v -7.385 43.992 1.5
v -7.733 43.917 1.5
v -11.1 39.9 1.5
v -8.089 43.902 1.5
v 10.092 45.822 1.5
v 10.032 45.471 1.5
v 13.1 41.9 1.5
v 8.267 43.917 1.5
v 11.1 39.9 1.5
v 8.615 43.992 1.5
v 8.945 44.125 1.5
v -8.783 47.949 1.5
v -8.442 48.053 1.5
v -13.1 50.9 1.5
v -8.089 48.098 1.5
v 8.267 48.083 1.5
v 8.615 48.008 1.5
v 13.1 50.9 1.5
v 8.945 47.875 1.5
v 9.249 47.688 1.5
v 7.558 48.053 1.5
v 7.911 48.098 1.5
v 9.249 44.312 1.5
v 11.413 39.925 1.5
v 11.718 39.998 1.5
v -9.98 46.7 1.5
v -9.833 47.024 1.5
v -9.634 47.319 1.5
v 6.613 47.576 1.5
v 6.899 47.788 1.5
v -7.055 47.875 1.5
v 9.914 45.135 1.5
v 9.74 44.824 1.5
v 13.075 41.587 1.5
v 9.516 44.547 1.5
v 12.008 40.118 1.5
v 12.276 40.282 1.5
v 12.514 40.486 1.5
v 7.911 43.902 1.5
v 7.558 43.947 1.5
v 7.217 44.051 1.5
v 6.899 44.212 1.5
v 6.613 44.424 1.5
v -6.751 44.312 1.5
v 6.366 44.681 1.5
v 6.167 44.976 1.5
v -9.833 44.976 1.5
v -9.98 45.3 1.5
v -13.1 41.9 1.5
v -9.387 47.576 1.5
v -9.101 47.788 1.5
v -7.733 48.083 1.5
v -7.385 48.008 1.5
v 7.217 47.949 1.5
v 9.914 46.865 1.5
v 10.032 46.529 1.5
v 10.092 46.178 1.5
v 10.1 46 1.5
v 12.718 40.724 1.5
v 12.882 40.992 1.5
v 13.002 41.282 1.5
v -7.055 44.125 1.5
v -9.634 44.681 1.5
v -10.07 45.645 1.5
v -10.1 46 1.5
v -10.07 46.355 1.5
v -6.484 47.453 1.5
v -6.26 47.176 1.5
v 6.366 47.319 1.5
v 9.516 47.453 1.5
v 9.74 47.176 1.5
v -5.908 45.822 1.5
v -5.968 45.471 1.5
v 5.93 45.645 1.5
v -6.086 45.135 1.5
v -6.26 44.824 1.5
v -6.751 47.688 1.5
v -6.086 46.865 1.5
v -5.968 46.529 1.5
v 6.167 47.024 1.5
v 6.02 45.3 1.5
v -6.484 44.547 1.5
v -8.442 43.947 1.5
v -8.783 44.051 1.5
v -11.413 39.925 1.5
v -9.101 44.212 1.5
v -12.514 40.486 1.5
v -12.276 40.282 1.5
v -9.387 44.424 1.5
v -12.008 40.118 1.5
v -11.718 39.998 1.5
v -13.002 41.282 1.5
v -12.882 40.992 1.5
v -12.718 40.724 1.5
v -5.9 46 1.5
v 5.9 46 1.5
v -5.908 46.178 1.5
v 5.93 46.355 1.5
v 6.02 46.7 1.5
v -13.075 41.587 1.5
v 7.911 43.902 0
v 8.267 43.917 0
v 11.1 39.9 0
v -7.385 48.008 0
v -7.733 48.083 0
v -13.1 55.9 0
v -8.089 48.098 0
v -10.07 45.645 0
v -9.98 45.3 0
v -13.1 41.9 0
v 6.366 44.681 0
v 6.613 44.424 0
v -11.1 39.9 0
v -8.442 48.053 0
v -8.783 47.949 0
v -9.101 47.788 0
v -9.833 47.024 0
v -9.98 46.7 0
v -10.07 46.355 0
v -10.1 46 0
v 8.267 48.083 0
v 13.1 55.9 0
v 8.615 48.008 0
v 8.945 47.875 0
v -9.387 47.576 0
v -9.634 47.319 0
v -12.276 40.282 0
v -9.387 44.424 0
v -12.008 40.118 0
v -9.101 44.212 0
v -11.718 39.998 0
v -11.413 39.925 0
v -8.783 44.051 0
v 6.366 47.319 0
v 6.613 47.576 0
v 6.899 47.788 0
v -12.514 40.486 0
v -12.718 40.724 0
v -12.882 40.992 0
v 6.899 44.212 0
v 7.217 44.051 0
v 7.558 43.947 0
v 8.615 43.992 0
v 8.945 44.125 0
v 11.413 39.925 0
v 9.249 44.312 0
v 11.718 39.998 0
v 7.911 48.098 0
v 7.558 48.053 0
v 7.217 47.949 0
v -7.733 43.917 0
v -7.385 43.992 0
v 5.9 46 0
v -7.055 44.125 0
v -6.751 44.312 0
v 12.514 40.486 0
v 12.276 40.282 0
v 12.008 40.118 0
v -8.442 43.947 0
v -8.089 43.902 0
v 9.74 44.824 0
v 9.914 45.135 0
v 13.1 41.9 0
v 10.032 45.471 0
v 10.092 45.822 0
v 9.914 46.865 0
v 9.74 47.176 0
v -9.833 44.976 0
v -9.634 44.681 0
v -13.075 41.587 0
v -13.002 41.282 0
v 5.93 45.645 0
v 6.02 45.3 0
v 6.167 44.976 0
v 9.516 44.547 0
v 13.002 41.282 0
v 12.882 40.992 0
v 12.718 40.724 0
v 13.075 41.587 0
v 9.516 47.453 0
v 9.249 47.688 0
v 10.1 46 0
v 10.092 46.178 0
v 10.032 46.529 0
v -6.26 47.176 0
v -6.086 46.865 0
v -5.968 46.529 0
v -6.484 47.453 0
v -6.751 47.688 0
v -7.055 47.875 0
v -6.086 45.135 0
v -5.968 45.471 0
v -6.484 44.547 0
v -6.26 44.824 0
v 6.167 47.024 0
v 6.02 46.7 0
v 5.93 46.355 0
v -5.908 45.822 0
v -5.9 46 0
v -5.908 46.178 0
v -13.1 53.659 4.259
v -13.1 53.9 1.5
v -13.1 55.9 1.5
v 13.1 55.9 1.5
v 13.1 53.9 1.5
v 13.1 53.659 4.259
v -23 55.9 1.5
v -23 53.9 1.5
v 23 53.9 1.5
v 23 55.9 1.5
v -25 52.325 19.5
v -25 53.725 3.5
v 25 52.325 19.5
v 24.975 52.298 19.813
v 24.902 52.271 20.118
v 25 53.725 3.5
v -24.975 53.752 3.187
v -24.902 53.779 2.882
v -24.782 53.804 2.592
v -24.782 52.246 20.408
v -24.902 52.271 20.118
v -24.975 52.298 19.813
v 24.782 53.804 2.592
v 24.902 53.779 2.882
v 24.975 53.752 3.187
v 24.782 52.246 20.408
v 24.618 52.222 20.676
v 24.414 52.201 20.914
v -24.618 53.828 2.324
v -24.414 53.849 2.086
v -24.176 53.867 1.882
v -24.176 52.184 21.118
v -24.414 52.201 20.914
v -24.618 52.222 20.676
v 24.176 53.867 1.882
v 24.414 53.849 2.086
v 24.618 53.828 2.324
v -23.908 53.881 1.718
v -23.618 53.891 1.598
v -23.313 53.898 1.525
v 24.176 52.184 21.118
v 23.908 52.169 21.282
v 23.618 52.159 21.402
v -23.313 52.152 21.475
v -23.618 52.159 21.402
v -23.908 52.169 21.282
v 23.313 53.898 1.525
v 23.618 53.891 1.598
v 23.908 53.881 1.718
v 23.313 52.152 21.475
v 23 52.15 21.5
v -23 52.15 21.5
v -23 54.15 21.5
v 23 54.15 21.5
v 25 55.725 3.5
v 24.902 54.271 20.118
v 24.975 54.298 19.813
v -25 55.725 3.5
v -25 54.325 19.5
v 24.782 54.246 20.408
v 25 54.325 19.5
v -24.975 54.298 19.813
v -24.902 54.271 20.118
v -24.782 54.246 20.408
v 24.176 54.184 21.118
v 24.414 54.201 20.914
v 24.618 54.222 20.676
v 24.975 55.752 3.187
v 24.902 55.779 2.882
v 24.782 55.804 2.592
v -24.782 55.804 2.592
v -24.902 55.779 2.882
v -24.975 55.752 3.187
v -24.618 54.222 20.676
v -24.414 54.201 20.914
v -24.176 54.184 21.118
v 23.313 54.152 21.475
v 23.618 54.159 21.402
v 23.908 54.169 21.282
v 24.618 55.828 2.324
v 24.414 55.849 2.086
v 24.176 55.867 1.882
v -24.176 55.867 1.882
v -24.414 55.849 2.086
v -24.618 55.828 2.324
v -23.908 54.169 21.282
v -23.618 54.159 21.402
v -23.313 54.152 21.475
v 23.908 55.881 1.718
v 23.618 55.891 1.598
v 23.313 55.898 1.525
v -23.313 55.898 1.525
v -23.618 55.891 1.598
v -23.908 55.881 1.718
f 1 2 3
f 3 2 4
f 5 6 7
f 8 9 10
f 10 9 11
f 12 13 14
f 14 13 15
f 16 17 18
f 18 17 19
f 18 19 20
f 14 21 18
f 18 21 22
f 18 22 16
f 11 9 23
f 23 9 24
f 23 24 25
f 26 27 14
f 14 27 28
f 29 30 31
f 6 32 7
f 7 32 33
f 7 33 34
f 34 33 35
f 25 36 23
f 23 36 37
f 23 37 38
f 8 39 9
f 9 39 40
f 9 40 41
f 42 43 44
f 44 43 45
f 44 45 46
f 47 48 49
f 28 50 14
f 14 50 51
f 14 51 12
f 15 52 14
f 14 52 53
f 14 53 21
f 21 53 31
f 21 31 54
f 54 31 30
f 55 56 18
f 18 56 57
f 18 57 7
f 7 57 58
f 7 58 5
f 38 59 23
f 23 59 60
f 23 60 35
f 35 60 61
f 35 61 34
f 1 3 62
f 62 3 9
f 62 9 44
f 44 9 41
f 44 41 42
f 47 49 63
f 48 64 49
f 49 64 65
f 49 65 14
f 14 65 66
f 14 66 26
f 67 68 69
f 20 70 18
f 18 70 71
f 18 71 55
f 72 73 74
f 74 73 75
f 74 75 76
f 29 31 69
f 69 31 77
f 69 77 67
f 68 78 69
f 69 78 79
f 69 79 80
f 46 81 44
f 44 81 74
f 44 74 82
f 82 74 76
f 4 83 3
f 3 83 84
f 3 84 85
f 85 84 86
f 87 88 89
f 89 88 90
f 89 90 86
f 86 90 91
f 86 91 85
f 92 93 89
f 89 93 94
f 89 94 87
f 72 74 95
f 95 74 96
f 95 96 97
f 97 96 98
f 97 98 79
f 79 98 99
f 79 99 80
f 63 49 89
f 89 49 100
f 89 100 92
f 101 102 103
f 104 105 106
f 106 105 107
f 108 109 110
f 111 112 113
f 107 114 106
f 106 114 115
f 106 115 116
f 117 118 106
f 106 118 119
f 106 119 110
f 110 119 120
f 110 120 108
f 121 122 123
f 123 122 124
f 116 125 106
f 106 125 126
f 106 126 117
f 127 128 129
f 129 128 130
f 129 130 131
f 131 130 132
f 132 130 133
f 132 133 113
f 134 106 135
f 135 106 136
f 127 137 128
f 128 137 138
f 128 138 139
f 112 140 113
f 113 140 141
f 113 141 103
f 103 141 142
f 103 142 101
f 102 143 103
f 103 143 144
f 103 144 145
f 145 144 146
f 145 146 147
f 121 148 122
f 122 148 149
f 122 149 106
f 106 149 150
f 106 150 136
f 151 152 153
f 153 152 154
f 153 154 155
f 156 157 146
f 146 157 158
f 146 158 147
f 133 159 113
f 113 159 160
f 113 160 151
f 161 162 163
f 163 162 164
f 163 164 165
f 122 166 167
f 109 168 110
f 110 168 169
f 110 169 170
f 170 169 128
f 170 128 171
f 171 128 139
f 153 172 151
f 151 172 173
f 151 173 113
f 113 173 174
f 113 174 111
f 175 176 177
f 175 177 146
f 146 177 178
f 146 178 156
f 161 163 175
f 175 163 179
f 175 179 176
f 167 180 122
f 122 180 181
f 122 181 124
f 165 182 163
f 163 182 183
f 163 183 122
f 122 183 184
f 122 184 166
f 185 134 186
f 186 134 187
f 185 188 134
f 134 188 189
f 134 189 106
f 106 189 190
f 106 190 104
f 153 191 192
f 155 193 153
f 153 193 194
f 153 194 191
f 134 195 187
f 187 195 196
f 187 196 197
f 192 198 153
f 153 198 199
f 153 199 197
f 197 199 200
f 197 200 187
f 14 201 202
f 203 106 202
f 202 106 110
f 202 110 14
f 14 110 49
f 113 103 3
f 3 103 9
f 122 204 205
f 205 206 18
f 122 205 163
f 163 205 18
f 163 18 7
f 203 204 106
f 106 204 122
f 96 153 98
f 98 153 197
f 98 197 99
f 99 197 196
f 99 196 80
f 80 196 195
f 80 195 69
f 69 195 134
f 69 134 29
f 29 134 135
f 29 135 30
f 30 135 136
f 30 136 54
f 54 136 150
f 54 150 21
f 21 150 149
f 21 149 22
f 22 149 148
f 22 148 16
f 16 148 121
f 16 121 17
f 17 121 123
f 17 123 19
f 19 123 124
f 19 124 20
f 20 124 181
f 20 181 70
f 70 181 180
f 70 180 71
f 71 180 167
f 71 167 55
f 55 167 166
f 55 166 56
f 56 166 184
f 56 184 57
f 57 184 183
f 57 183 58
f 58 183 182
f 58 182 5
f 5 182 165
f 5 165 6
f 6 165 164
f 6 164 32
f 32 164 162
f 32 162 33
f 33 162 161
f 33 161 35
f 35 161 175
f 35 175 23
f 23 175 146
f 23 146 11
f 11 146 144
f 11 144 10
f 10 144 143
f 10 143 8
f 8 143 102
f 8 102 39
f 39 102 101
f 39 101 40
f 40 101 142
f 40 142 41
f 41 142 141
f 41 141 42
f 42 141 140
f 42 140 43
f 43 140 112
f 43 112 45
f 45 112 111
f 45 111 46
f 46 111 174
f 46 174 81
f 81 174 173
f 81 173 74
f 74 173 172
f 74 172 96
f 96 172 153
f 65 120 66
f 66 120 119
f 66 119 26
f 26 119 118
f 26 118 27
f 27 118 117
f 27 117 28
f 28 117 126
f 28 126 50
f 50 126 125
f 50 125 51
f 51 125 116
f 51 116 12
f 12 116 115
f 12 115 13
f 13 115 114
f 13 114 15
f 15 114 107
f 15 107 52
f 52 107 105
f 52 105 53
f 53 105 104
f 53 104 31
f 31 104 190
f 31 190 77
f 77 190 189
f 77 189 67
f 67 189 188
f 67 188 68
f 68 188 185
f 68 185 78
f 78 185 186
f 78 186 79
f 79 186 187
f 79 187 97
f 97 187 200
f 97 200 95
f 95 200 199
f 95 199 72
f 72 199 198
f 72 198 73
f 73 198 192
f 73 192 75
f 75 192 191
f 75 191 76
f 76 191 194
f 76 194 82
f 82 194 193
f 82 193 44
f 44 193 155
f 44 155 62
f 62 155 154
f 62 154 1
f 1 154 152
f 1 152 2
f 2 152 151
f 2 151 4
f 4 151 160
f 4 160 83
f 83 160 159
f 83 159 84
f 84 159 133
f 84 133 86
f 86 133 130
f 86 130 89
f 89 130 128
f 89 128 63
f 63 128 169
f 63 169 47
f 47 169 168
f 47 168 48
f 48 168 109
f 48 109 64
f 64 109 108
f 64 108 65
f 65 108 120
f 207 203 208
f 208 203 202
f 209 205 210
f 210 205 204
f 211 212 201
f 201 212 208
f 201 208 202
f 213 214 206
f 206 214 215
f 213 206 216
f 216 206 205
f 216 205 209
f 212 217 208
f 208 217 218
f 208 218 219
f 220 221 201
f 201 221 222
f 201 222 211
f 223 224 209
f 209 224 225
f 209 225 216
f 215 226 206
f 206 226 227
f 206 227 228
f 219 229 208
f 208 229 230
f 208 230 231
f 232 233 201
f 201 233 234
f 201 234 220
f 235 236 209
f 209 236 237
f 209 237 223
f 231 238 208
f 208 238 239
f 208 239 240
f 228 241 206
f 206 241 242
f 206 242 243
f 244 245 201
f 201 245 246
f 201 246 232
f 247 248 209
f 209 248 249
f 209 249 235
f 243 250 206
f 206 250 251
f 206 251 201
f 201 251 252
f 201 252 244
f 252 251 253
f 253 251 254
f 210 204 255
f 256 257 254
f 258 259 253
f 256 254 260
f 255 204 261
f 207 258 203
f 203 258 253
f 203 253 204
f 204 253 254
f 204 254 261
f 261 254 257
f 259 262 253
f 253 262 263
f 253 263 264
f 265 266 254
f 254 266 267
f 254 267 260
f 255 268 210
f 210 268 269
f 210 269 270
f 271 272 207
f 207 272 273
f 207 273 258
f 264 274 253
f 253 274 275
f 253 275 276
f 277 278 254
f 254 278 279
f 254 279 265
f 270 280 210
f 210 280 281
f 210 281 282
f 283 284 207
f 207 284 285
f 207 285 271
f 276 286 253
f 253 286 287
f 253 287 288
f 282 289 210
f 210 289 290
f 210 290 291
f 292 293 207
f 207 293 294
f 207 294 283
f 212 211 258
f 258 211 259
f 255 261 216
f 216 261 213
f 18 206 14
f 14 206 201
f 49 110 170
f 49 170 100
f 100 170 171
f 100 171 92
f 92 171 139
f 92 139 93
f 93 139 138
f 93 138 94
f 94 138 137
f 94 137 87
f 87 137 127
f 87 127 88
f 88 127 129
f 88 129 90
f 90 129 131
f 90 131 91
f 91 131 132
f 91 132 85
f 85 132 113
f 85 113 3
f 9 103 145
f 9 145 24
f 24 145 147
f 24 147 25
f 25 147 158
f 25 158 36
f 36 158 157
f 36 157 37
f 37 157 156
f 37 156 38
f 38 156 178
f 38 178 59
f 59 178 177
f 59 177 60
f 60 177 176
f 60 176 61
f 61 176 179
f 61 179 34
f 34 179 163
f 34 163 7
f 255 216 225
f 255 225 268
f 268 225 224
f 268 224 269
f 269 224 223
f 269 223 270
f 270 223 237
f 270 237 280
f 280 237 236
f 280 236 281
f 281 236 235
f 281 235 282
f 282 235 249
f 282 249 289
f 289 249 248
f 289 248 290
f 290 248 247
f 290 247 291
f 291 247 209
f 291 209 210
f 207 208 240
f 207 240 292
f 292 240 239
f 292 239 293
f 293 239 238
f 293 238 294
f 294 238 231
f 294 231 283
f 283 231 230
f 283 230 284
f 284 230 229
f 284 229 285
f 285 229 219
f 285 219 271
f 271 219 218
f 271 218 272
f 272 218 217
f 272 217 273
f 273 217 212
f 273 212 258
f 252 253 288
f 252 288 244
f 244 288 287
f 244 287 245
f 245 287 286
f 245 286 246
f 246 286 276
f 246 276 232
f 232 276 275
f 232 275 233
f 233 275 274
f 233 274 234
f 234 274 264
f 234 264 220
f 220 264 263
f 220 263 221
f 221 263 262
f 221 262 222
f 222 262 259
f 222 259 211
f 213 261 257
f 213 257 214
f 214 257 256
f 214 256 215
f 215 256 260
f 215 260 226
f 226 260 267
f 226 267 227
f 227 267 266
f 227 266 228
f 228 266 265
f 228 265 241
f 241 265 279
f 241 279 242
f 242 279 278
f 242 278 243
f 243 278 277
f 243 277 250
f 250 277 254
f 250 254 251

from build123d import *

# Parameters (mm, degrees)
SKETCH3_W           = 26.2
SKETCH3_H           = 16
SKETCH3_R           = 2.1
BOSS_EXTRUDE1_DEPTH = 1.5
BOSS_EXTRUDE2_START = -13.1
BOSS_EXTRUDE2_DEPTH = 25
CHAMFER1_SIZE       = 3
CHAMFER1_SIZE2      = 2.769187039
FILLET1_R           = 2


with BuildPart() as part:
    # Sketch3 → Boss-Extrude1 (new body)
    with BuildSketch(Plane.XY):
        with Locations((0, 47.9)):
            Rectangle(SKETCH3_W, SKETCH3_H)
        with Locations((8, 46)):
            Circle(SKETCH3_R, mode=Mode.SUBTRACT)
        with Locations((-8, 46)):
            Circle(SKETCH3_R, mode=Mode.SUBTRACT)
    extrude(amount=BOSS_EXTRUDE1_DEPTH)

    # Sketch4 → Boss-Extrude2 (add, symmetric)
    with BuildSketch(Plane(origin=(13.1, 0, 0), x_dir=(0, 0, -1), z_dir=(1, 0, 0)).offset(BOSS_EXTRUDE2_START)):
        Polygon((-1.5, 55.9), (-21.5, 54.150226729), (-21.5, 52.150226729), (-1.5, 53.9), align=None)
    extrude(amount=BOSS_EXTRUDE2_DEPTH, both=True)

    # Chamfer1
    chamfer1_edges = [part.edges().sort_by_distance(p)[0] for p in [
        (0, 53.9, 1.5),
    ]]
    chamfer1_side = [part.faces().sort_by_distance(p)[0] for p in [
        (0, 46.973543536, 1.5),
    ]]
    chamfer(chamfer1_edges, length=CHAMFER1_SIZE, length2=CHAMFER1_SIZE2, reference=chamfer1_side[0])

    # Fillet1
    fillet1_edges = [part.edges().sort_by_distance(p)[0] for p in [
        (-25, 54.9, 1.5),
        (-25, 53.150226729, 21.5),
        (25, 54.9, 1.5),
        (25, 53.150226729, 21.5),
        (13.1, 39.9, 0.75),
        (-13.1, 39.9, 0.75),
    ]]
    fillet(fillet1_edges, radius=FILLET1_R)


solid = part.part
